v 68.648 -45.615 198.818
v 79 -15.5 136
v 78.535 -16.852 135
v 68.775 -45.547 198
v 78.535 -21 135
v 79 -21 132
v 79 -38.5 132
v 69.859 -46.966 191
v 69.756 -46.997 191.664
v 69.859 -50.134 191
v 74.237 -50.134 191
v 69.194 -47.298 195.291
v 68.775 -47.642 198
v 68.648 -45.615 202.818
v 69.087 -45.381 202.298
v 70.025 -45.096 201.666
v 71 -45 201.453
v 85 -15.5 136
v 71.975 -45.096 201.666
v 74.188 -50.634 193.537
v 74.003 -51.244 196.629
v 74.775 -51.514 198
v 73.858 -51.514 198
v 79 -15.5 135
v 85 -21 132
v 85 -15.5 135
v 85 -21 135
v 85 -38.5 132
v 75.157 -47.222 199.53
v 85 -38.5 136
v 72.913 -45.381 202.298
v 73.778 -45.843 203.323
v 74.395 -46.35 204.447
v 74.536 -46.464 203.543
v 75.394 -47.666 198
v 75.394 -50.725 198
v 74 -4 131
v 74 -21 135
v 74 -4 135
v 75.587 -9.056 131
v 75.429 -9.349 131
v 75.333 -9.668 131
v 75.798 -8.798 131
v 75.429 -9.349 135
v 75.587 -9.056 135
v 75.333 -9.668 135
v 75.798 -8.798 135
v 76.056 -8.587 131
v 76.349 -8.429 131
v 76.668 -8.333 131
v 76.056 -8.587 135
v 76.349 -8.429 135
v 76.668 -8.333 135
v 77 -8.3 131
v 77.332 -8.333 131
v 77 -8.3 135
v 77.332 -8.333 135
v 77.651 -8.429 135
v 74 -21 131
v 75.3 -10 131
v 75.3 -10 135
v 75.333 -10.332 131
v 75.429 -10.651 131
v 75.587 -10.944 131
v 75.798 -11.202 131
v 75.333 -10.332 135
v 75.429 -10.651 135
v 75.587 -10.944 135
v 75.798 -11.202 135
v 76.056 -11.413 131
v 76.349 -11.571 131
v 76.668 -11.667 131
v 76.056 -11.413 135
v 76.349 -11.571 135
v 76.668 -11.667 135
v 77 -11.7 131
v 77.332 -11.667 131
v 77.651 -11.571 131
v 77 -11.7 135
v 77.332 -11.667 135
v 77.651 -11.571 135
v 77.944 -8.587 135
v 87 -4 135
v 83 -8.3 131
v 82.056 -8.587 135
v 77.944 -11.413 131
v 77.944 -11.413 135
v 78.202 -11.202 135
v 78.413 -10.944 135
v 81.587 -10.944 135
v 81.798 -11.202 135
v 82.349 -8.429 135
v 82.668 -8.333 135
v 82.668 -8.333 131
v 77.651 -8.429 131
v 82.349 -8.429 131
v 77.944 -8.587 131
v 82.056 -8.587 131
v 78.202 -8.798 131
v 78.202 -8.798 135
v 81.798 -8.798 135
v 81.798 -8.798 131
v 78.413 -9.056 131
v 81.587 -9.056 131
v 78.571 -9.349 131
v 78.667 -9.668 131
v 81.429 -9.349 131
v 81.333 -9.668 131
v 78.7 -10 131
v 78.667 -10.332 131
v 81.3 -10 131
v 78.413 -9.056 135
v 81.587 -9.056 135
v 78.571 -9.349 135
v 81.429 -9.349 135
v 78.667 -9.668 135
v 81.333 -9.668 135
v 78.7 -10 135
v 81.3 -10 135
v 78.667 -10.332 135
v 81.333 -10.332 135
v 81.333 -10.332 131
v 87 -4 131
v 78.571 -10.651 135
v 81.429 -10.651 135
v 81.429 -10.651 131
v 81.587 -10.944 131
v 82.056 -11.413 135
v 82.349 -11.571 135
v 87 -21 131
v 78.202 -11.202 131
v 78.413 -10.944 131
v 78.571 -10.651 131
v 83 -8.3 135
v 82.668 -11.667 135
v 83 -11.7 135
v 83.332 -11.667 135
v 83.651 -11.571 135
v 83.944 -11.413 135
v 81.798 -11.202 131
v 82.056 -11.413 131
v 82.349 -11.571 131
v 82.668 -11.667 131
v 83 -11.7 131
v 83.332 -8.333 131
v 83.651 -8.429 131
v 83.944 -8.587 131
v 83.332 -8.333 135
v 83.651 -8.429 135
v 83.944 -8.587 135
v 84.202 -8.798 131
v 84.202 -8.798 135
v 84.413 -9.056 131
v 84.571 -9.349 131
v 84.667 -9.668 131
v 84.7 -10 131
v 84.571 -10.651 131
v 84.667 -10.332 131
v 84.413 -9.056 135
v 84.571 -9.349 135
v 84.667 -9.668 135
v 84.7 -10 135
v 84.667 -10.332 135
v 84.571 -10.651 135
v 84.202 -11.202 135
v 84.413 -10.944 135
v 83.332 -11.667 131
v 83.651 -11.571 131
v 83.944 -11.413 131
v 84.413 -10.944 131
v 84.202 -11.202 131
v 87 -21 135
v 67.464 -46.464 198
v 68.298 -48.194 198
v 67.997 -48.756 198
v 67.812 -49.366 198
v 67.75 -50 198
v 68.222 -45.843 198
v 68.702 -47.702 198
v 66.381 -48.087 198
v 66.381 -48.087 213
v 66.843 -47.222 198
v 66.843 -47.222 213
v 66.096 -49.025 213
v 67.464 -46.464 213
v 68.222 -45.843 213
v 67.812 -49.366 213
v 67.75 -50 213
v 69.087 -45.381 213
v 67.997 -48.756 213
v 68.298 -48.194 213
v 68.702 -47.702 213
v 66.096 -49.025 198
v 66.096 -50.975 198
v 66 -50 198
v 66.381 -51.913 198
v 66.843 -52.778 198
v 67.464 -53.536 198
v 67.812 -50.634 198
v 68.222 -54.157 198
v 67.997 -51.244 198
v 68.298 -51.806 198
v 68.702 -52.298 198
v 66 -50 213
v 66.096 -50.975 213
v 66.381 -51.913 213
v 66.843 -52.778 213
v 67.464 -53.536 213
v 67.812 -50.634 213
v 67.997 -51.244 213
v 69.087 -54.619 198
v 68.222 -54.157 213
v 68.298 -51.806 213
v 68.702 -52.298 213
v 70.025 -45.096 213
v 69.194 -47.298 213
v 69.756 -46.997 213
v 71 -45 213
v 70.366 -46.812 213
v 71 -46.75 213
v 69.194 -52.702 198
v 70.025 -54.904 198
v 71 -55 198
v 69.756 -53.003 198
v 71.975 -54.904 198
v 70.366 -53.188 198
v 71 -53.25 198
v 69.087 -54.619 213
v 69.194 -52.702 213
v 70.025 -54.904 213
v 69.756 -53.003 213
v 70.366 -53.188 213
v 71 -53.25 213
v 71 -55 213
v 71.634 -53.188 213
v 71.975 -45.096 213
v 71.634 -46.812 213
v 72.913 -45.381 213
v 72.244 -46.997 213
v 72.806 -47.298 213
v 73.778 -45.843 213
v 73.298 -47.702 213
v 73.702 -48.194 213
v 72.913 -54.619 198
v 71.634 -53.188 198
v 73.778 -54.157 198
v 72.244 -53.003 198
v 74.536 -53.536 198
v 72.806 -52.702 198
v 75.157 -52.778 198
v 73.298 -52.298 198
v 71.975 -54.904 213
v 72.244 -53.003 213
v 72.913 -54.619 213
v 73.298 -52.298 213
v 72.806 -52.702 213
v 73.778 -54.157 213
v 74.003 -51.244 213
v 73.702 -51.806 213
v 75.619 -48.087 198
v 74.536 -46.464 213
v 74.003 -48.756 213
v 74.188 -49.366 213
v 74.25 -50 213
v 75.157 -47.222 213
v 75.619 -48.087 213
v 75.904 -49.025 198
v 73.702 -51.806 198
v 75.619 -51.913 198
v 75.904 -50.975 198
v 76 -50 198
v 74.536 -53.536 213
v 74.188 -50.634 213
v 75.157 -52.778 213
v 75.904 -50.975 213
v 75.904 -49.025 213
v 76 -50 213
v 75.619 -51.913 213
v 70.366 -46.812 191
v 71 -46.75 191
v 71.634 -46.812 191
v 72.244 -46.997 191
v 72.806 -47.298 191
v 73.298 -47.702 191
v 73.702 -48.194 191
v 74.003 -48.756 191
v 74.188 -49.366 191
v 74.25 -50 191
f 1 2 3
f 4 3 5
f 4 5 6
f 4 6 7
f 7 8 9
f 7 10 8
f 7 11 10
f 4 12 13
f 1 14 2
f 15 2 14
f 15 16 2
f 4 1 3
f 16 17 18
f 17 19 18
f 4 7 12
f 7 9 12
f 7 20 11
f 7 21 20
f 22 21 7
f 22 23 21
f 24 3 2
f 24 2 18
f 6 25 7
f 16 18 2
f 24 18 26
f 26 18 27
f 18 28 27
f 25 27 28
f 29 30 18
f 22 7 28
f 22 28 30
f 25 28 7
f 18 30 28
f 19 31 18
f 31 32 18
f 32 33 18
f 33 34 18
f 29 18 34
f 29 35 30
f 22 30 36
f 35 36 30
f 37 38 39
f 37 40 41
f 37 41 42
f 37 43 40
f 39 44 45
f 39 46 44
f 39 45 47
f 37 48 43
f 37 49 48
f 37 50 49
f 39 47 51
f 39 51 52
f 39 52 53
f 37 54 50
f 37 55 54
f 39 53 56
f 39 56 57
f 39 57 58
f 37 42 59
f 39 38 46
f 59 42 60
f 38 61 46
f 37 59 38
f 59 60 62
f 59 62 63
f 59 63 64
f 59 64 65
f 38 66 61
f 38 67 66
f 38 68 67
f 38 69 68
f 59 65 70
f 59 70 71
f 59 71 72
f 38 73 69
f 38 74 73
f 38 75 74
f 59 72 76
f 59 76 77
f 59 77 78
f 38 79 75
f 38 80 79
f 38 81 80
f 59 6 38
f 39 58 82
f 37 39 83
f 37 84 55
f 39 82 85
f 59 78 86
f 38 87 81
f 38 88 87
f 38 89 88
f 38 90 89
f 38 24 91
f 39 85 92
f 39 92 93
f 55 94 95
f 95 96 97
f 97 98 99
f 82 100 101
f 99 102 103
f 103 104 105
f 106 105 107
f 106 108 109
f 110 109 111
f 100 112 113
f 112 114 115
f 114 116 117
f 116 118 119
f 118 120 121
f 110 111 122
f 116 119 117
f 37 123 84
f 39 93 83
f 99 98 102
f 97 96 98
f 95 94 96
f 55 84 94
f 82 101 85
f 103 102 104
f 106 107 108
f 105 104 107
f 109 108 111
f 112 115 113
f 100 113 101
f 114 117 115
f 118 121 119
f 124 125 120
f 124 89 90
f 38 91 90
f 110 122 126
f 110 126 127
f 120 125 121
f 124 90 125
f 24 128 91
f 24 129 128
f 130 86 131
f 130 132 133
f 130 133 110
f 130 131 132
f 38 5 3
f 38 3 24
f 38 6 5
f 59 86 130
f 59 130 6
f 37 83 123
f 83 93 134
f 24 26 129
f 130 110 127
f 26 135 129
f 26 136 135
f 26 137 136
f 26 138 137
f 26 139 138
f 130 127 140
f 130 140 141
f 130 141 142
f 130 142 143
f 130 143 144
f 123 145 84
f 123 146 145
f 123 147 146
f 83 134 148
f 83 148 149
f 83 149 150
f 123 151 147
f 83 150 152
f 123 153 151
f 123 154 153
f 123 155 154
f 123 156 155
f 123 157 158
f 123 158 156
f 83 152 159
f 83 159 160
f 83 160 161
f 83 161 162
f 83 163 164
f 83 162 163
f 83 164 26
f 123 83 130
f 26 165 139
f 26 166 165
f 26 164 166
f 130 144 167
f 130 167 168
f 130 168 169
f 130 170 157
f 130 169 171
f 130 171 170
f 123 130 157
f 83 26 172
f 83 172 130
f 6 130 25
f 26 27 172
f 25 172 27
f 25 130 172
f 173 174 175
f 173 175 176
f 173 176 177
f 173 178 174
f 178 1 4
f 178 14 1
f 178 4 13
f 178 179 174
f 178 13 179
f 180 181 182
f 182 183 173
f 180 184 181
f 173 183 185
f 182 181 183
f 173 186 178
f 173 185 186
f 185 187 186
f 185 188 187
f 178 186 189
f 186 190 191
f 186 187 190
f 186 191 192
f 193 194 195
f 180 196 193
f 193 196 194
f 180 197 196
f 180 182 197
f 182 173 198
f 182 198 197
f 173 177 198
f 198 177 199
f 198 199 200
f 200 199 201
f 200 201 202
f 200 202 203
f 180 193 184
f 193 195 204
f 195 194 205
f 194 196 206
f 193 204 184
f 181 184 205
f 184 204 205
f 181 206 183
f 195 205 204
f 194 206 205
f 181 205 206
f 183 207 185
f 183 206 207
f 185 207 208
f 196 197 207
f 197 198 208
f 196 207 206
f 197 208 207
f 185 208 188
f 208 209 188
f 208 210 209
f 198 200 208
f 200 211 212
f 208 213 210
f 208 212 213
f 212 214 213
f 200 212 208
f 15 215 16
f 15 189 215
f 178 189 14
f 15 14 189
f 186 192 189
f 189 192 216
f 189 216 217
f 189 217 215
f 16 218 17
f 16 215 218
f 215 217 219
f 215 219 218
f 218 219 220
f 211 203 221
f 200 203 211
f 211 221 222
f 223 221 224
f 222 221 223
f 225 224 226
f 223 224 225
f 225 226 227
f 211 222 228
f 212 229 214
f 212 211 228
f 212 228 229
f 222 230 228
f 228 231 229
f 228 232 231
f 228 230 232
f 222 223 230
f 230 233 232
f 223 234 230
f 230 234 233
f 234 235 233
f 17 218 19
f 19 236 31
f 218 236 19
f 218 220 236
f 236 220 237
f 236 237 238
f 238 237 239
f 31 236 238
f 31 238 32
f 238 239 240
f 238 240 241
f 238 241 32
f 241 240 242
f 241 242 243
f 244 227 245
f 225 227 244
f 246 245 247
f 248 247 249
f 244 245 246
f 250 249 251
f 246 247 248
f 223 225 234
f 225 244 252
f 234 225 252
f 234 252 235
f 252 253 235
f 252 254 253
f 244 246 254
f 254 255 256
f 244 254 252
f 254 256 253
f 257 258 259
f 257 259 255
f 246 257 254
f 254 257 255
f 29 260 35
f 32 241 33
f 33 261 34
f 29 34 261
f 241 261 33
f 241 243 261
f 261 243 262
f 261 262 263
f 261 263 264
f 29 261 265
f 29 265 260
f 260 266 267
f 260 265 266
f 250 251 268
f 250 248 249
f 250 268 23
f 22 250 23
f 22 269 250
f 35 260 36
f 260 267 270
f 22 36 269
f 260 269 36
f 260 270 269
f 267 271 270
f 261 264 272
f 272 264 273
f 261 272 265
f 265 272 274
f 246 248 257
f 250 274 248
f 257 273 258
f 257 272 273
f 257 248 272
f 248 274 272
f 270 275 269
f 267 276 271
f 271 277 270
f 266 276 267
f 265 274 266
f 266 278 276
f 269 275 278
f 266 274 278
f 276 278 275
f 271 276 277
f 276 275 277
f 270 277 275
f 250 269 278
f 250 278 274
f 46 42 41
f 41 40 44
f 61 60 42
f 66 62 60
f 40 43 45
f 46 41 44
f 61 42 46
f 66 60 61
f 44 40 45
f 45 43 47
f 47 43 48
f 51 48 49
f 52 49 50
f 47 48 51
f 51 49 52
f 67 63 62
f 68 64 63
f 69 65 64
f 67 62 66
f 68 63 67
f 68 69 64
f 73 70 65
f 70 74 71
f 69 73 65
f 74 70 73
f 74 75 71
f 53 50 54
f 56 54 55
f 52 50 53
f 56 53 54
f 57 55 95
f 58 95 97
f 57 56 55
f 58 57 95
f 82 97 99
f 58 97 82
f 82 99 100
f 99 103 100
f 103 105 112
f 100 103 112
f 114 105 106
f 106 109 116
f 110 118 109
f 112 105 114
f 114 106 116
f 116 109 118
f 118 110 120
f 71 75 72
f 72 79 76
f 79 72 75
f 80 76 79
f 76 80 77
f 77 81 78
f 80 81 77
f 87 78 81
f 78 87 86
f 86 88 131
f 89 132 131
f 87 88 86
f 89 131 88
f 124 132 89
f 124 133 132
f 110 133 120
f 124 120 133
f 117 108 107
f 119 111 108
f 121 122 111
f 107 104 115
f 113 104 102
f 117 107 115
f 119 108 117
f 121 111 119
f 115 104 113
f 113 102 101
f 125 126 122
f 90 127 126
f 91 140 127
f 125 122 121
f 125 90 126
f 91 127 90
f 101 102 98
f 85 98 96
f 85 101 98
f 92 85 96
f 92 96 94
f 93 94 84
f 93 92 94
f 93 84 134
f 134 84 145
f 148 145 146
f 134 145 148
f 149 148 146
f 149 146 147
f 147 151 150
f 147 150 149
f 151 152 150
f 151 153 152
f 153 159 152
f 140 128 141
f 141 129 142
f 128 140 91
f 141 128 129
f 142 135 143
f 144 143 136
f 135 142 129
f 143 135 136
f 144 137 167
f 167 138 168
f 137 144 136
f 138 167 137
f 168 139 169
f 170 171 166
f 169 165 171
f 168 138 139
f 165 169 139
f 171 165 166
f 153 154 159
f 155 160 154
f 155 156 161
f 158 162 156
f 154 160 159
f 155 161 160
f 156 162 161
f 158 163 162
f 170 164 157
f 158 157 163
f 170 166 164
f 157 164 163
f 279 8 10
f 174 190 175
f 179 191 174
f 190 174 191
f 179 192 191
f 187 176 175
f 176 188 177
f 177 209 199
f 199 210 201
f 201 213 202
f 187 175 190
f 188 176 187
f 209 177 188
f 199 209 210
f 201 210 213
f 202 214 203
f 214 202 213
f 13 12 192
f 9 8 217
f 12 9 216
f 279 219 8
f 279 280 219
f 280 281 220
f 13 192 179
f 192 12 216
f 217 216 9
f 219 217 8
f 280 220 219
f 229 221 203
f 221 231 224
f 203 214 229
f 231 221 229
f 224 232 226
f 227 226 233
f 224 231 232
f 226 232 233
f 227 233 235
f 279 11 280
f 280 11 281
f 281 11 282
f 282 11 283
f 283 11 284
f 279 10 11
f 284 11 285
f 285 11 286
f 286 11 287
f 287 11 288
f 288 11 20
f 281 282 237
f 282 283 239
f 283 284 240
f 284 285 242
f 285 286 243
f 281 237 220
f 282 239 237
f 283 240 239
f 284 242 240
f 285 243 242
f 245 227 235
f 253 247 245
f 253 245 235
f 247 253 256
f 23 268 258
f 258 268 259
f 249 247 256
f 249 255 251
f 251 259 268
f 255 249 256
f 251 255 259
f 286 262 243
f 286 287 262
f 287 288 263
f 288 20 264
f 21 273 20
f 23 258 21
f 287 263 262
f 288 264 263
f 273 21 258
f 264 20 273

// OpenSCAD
// file: head_ear.scad
// =============================================================================
// NOVA HEAD EAR — one fennec ear / WiFi antenna mast, bolts to the head pad
// =============================================================================
// SPLIT OFF the head (2026-07-07 review): the tall leaning ears made the head a
// warpy, support-heavy multi-branch print. As a separate part the head body
// prints compact + the ears print flat. Also modular: the ears are OPTIONAL
// (WiFi-antenna decision, backlog #32) — no antennas -> don't print/attach them.
//
// This file = the +Y (RIGHT) ear. Build the LEFT with head_ear_L.scad (mirror).
// MOUNT: the foot flange sits on the head ear-pad (top z131, x74..87) and bolts
//   DOWN with 2x M3 into the pad's heat-sets at (77,±10),(83,±10). The bolts sit
//   INBOARD (y10) of the panel base (y15.5+) so a driver drops straight onto
//   them clear of the panel (access audit 2026-07-08). The broad triangular
//   panel rises + splays out (behind the L2, x<89 -> rear LiDAR sector only). Antenna BOSS at the tip: SMA bulkhead, whip points UP (omni
//   RF). Cable: U.FL->SMA pigtail up the neck -> the bulkhead (route TBD once
//   antennas are decided).
// PRINT: PETG-CF (low warp) or PA6-CF, panel FLAT on the bed, minimal supports,
//   ~5 g. print 2 (R here + L mirror).

$fn = 32; EPS = 0.05; M3_CLEAR = 3.4;
PAD_Z = 131;        // head ear-pad top = the bolt face

module head_ear() {
    difference() {
        union() {
            // foot flange on the pad (x74..87, y4..21) — bolts down into the pad
            // (extends to y4 so the y10 bolts clear the panel base above them)
            translate([74, 4, PAD_Z]) cube([13, 17, 4]);
            // broad triangular panel, rising + splaying out, leaning back
            hull() {
                translate([82, 18, PAD_Z + 3]) cube([6, 5, 4], center = true);
                translate([82, 36, PAD_Z + 3]) cube([6, 5, 4], center = true);
                translate([71, 50, 205])       cube([6, 5, 4], center = true);
            }
            // antenna boss at the tip (holds the SMA bulkhead)
            translate([71, 50, 198]) cylinder(d = 10, h = 15);
        }
        // 2x M3 foot bolts (clearance, from the foot top down into the pad)
        for (ex = [77, 83])
            translate([ex, 10, PAD_Z - EPS]) cylinder(d = M3_CLEAR, h = 4 + 2 * EPS);
        // SMA bulkhead bore up the tip (whip UP)
        translate([71, 50, 191]) cylinder(d = 6.5, h = 30);
    }
}

head_ear();
// main file
// LEFT head ear = Y-mirror of the right part (head_ear.scad).
$fn = 32;
use <head_ear.scad>
mirror([0, 1, 0]) head_ear();
